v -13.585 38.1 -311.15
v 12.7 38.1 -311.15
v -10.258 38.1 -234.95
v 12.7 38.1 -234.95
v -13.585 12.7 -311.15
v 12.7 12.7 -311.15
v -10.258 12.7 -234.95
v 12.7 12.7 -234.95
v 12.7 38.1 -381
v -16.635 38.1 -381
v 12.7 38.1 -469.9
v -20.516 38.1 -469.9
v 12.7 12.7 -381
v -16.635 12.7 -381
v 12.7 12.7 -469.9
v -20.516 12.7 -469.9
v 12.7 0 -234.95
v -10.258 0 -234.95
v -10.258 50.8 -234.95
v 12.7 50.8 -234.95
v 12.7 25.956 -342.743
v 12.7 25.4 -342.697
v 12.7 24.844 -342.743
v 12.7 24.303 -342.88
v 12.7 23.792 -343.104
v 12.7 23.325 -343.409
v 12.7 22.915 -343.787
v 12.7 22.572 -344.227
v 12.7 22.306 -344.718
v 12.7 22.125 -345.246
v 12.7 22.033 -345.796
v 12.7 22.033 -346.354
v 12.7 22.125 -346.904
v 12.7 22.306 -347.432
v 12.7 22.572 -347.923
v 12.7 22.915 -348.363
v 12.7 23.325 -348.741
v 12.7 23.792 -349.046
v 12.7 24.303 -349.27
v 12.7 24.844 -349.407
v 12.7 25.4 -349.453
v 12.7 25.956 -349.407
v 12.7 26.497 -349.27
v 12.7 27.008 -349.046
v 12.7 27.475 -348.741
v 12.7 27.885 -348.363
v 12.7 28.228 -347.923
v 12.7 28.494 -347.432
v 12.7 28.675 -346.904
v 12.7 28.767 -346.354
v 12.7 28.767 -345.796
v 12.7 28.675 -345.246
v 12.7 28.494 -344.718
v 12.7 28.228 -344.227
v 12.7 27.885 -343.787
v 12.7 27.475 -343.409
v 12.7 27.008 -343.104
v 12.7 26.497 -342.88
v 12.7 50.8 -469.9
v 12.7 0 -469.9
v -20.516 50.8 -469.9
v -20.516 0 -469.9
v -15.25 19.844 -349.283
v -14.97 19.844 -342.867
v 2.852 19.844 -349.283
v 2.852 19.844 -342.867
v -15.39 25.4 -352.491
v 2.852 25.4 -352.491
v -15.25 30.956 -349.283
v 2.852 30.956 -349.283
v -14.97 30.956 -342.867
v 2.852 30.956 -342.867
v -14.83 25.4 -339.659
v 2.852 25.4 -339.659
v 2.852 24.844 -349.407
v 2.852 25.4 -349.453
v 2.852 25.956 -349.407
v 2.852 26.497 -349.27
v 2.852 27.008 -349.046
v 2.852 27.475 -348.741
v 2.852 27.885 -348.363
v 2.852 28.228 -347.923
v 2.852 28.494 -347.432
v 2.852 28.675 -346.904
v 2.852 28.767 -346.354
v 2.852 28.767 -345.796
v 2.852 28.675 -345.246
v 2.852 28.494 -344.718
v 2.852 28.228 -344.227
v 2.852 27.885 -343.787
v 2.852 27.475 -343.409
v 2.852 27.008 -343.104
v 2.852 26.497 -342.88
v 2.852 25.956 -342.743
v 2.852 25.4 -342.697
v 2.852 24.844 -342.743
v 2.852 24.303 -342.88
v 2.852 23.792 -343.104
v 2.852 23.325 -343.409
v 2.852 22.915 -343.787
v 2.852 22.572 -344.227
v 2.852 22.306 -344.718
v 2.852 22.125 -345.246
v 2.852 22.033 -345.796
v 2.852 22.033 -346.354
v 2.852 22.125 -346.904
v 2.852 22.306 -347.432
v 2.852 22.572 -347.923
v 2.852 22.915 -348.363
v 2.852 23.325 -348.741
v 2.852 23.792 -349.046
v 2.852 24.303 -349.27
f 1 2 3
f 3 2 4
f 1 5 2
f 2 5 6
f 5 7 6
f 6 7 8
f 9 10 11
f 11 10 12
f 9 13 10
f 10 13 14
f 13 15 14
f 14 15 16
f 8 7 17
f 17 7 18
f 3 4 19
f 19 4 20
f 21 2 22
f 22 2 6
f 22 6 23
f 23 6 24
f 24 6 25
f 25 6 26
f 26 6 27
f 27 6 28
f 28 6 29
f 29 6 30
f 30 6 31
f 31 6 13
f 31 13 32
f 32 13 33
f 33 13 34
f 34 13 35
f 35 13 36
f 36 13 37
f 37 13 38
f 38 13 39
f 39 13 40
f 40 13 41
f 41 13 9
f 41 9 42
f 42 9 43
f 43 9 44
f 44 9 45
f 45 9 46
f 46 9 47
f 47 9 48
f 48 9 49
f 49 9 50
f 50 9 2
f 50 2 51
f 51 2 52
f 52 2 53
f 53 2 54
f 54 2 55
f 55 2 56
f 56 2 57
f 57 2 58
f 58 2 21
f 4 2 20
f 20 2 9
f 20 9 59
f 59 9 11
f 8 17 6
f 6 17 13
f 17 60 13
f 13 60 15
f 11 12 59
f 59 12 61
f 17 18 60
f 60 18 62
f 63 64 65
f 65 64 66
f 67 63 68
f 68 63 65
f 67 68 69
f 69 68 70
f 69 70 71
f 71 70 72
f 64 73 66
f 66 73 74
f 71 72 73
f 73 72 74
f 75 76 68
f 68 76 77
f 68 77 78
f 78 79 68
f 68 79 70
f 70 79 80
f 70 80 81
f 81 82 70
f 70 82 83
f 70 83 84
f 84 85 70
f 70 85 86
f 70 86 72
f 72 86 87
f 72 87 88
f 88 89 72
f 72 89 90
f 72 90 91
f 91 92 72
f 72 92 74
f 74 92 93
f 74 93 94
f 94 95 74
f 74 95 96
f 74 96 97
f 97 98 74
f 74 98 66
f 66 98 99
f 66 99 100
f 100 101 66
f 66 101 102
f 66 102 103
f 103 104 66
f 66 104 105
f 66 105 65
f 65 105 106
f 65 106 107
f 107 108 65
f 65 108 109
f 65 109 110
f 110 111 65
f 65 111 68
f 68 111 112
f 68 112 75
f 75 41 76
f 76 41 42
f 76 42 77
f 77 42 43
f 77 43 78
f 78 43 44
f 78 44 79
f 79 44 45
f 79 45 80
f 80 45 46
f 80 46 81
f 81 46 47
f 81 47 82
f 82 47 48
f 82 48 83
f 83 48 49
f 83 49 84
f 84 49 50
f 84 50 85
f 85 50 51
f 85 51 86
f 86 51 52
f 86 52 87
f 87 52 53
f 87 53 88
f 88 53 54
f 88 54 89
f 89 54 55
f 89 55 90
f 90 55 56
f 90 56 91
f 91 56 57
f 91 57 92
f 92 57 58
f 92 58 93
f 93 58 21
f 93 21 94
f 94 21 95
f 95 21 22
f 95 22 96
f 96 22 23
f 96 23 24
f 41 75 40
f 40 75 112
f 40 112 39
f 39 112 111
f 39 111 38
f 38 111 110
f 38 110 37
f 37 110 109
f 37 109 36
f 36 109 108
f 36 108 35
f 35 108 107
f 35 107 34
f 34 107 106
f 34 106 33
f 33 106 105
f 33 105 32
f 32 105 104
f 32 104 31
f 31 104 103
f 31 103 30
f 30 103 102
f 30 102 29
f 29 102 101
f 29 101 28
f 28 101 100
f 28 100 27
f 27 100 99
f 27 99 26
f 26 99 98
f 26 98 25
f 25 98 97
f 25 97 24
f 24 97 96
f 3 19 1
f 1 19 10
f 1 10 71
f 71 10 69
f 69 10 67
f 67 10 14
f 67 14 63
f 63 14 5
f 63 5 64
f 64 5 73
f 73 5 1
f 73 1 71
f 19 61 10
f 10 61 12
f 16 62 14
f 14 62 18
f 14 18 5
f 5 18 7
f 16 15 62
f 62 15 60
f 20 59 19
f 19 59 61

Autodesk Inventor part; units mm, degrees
ref_plane "YZ Plane" through (0, 0, 0) normal (1, 0, 0) x (0, 1, 0)
ref_plane "XZ Plane" through (0, 0, 0) normal (0, 1, 0) x (-1, 0, 0)
sketch "Sketch1" plane through (0, 0, 0) normal (0, 1, 0) x (-1, 0, 0)
  line L0 (0, 0) -> (0, -469.9)
  line L1 (0, -469.9) -> (0, -122.0086)
  line L2 (0, -469.9) -> (20.5163, -469.9)
  line L3 (20.5163, -469.9) -> (0, 0)
  dimension "d0" = 469.9
  dimension "d1" = 2.5
extrude "Extrusion1" add sketch "Sketch1" along normal blind 50.8
ref_plane "Work Plane1" through (-20.5163, 50.8, -469.9) normal (1, 0, 0) x (0, 0, -1)
sketch "Sketch2" plane through (0, 0, 0) normal (1, 0, 0) x (0, 0, -1)
  line L0 (0, 0) -> (469.9, 0) projected
  line L1 (0, 50.8) -> (469.9, 50.8) projected
  line L2 (0, 0) -> (469.9, 0)
  line L3 (469.9, 0) -> (469.9, 50.8)
  line L4 (469.9, 50.8) -> (0, 50.8)
  line L5 (0, 50.8) -> (0, 0)
extrude "Extrusion2" add sketch "Sketch2" along normal blind 12.7
sketch "Sketch4" plane through (-20.5163, 50.8, -469.9) normal (1, 0, 0) x (0, 0, -1)
  line L0 (0, -50.8) -> (0, 0) construction
  line L1 (0, -25.4) -> (-279.4, -25.4) construction
  line L2 (0, -50.8) -> (-469.9, -50.8) construction
  line L3 (-469.9, -50.8) -> (-469.9, 0) construction
  point P0 (-381, -25.4)
  point P1 (-123.825, -25.4)
  point P2 (-469.9, 0)
  dimension "d16" = 25.4
  dimension "d17" = 88.9
  dimension "d18" = 346.075
hole "Hole2" at (-20.5163, 25.4, -88.9) at (-20.5163, 25.4, -346.075) direction (1, 0, 0) diameter 6.7564 end through all clearance for "Flat Head Machine Screw (82)" size "1/4" standard "Ansi Unified Screw Threads"
sketch "Sketch6" plane through (-20.5163, 50.8, -469.9) normal (1, 0, 0) x (0, 0, -1)
  circle A0 centre (-123.825, -25.4) radius 3.3782 projected
  line L0 (-130.2408, -25.4) -> (-127.0329, -19.8438)
  line L1 (-127.0329, -19.8438) -> (-120.6171, -19.8438)
  line L2 (-120.6171, -19.8438) -> (-117.4092, -25.4)
  line L3 (-117.4092, -25.4) -> (-120.6171, -30.9563)
  line L4 (-120.6171, -30.9563) -> (-127.0329, -30.9562)
  line L5 (-127.0329, -30.9562) -> (-130.2408, -25.4)
  circle A1 centre (-381, -25.4) radius 3.3782 projected
  line L6 (-387.4158, -25.4) -> (-384.2079, -19.8438)
  line L7 (-384.2079, -19.8438) -> (-377.7921, -19.8438)
  line L8 (-377.7921, -19.8438) -> (-374.5842, -25.4)
  line L9 (-374.5842, -25.4) -> (-377.7921, -30.9563)
  line L10 (-377.7921, -30.9563) -> (-384.2079, -30.9563)
  line L11 (-384.2079, -30.9563) -> (-387.4158, -25.4)
  line L12 (0, 0) -> (-469.9, 0) projected
  point P0 (-469.9, -50.8)
  dimension "d26" = 11.1125
extrude "Extrusion3" cut sketch "Sketch6" along normal blind 23.368
ref_plane "Work Plane2" through (-20.5163, 0, -234.95) normal (0, 0, -1) x (-1, 0, 0)
split "Split2" plane through (-20.5163, 0, -234.95) removes the side toward (0, 0, 1)
sketch "Sketch7" plane through (-20.5163, 50.8, -469.9) normal (1, 0, 0) x (0, 0, -1)
  line L0 (-158.75, -38.1) -> (-311.15, -38.1)
  line L1 (-311.15, -38.1) -> (-311.15, -12.7)
  line L2 (-311.15, -12.7) -> (-158.75, -12.7)
  line L3 (-158.75, -12.7) -> (-158.75, -38.1)
  line L4 (-234.95, 0) -> (-234.95, -50.8) projected
  line L5 (-158.75, -38.1) -> (-311.15, -12.7) construction
  line L6 (-311.15, -38.1) -> (-158.75, -12.7) construction
  line L7 (88.9, -38.1) -> (-88.9, -38.1)
  line L8 (-88.9, -38.1) -> (-88.9, -12.7)
  line L9 (-88.9, -12.7) -> (88.9, -12.7)
  line L10 (88.9, -12.7) -> (88.9, -38.1)
  line L11 (0, -50.8) -> (0, 0) projected
  line L12 (88.9, -38.1) -> (-88.9, -12.7) construction
  line L13 (-88.9, -38.1) -> (88.9, -12.7) construction
  point P0 (-469.9, -50.8)
  point P1 (-234.95, -25.4)
  point P2 (0, -25.4)
  dimension "d30" = 25.4
  dimension "d31" = 177.8
  dimension "d32" = 152.4
extrude "Extrusion4" cut sketch "Sketch7" along normal through all
equation "\"d0\" = lengthOfFixture"
equation "\"d1\" = cutAngle"
equation "\"d2\" = heightOfJig"
equation "\"d4\" = addedDepthToSupportBolts"
equation "\"d16\" = heightOfBoltHolt"
equation "\"d17\" = bottomToFirstHole"
equation "\"d18\" = bottomToSecondHole"
equation "\"d26\" = hexBoltDiameter"
equation "\"d27\" = depthOfHoleForHexBolt + clearanceForHexbolt"
equation "\"lengthOfFixture\" = 469.9"
equation "\"cutAngle\" = 2.5deg"
equation "\"bottomToFirstHole\" = 88.9"
equation "\"distanceBetweenBolts\" = 257.175"
equation "\"bottomToSecondHole\" = bottomToFirstHole + distanceBetweenBolts"
equation "\"heightOfBoltHolt\" = 25.4"
equation "\"boltSize\" = 6.35"
equation "\"heightOfJig\" = 50.8"
equation "\"addedDepthToSupportBolts\" = 12.7"
equation "\"depthOfHoleForHexBolt\" = 22.86"
equation "\"hexBoltDiameter\" = 11.1125"
equation "\"clearanceForHexbolt\" = 0.508"
equation "\"d29\" = -0.5 * lengthOfFixture"
properties part number "jigForRipCutsB" material "PC/ABS Plastic"
